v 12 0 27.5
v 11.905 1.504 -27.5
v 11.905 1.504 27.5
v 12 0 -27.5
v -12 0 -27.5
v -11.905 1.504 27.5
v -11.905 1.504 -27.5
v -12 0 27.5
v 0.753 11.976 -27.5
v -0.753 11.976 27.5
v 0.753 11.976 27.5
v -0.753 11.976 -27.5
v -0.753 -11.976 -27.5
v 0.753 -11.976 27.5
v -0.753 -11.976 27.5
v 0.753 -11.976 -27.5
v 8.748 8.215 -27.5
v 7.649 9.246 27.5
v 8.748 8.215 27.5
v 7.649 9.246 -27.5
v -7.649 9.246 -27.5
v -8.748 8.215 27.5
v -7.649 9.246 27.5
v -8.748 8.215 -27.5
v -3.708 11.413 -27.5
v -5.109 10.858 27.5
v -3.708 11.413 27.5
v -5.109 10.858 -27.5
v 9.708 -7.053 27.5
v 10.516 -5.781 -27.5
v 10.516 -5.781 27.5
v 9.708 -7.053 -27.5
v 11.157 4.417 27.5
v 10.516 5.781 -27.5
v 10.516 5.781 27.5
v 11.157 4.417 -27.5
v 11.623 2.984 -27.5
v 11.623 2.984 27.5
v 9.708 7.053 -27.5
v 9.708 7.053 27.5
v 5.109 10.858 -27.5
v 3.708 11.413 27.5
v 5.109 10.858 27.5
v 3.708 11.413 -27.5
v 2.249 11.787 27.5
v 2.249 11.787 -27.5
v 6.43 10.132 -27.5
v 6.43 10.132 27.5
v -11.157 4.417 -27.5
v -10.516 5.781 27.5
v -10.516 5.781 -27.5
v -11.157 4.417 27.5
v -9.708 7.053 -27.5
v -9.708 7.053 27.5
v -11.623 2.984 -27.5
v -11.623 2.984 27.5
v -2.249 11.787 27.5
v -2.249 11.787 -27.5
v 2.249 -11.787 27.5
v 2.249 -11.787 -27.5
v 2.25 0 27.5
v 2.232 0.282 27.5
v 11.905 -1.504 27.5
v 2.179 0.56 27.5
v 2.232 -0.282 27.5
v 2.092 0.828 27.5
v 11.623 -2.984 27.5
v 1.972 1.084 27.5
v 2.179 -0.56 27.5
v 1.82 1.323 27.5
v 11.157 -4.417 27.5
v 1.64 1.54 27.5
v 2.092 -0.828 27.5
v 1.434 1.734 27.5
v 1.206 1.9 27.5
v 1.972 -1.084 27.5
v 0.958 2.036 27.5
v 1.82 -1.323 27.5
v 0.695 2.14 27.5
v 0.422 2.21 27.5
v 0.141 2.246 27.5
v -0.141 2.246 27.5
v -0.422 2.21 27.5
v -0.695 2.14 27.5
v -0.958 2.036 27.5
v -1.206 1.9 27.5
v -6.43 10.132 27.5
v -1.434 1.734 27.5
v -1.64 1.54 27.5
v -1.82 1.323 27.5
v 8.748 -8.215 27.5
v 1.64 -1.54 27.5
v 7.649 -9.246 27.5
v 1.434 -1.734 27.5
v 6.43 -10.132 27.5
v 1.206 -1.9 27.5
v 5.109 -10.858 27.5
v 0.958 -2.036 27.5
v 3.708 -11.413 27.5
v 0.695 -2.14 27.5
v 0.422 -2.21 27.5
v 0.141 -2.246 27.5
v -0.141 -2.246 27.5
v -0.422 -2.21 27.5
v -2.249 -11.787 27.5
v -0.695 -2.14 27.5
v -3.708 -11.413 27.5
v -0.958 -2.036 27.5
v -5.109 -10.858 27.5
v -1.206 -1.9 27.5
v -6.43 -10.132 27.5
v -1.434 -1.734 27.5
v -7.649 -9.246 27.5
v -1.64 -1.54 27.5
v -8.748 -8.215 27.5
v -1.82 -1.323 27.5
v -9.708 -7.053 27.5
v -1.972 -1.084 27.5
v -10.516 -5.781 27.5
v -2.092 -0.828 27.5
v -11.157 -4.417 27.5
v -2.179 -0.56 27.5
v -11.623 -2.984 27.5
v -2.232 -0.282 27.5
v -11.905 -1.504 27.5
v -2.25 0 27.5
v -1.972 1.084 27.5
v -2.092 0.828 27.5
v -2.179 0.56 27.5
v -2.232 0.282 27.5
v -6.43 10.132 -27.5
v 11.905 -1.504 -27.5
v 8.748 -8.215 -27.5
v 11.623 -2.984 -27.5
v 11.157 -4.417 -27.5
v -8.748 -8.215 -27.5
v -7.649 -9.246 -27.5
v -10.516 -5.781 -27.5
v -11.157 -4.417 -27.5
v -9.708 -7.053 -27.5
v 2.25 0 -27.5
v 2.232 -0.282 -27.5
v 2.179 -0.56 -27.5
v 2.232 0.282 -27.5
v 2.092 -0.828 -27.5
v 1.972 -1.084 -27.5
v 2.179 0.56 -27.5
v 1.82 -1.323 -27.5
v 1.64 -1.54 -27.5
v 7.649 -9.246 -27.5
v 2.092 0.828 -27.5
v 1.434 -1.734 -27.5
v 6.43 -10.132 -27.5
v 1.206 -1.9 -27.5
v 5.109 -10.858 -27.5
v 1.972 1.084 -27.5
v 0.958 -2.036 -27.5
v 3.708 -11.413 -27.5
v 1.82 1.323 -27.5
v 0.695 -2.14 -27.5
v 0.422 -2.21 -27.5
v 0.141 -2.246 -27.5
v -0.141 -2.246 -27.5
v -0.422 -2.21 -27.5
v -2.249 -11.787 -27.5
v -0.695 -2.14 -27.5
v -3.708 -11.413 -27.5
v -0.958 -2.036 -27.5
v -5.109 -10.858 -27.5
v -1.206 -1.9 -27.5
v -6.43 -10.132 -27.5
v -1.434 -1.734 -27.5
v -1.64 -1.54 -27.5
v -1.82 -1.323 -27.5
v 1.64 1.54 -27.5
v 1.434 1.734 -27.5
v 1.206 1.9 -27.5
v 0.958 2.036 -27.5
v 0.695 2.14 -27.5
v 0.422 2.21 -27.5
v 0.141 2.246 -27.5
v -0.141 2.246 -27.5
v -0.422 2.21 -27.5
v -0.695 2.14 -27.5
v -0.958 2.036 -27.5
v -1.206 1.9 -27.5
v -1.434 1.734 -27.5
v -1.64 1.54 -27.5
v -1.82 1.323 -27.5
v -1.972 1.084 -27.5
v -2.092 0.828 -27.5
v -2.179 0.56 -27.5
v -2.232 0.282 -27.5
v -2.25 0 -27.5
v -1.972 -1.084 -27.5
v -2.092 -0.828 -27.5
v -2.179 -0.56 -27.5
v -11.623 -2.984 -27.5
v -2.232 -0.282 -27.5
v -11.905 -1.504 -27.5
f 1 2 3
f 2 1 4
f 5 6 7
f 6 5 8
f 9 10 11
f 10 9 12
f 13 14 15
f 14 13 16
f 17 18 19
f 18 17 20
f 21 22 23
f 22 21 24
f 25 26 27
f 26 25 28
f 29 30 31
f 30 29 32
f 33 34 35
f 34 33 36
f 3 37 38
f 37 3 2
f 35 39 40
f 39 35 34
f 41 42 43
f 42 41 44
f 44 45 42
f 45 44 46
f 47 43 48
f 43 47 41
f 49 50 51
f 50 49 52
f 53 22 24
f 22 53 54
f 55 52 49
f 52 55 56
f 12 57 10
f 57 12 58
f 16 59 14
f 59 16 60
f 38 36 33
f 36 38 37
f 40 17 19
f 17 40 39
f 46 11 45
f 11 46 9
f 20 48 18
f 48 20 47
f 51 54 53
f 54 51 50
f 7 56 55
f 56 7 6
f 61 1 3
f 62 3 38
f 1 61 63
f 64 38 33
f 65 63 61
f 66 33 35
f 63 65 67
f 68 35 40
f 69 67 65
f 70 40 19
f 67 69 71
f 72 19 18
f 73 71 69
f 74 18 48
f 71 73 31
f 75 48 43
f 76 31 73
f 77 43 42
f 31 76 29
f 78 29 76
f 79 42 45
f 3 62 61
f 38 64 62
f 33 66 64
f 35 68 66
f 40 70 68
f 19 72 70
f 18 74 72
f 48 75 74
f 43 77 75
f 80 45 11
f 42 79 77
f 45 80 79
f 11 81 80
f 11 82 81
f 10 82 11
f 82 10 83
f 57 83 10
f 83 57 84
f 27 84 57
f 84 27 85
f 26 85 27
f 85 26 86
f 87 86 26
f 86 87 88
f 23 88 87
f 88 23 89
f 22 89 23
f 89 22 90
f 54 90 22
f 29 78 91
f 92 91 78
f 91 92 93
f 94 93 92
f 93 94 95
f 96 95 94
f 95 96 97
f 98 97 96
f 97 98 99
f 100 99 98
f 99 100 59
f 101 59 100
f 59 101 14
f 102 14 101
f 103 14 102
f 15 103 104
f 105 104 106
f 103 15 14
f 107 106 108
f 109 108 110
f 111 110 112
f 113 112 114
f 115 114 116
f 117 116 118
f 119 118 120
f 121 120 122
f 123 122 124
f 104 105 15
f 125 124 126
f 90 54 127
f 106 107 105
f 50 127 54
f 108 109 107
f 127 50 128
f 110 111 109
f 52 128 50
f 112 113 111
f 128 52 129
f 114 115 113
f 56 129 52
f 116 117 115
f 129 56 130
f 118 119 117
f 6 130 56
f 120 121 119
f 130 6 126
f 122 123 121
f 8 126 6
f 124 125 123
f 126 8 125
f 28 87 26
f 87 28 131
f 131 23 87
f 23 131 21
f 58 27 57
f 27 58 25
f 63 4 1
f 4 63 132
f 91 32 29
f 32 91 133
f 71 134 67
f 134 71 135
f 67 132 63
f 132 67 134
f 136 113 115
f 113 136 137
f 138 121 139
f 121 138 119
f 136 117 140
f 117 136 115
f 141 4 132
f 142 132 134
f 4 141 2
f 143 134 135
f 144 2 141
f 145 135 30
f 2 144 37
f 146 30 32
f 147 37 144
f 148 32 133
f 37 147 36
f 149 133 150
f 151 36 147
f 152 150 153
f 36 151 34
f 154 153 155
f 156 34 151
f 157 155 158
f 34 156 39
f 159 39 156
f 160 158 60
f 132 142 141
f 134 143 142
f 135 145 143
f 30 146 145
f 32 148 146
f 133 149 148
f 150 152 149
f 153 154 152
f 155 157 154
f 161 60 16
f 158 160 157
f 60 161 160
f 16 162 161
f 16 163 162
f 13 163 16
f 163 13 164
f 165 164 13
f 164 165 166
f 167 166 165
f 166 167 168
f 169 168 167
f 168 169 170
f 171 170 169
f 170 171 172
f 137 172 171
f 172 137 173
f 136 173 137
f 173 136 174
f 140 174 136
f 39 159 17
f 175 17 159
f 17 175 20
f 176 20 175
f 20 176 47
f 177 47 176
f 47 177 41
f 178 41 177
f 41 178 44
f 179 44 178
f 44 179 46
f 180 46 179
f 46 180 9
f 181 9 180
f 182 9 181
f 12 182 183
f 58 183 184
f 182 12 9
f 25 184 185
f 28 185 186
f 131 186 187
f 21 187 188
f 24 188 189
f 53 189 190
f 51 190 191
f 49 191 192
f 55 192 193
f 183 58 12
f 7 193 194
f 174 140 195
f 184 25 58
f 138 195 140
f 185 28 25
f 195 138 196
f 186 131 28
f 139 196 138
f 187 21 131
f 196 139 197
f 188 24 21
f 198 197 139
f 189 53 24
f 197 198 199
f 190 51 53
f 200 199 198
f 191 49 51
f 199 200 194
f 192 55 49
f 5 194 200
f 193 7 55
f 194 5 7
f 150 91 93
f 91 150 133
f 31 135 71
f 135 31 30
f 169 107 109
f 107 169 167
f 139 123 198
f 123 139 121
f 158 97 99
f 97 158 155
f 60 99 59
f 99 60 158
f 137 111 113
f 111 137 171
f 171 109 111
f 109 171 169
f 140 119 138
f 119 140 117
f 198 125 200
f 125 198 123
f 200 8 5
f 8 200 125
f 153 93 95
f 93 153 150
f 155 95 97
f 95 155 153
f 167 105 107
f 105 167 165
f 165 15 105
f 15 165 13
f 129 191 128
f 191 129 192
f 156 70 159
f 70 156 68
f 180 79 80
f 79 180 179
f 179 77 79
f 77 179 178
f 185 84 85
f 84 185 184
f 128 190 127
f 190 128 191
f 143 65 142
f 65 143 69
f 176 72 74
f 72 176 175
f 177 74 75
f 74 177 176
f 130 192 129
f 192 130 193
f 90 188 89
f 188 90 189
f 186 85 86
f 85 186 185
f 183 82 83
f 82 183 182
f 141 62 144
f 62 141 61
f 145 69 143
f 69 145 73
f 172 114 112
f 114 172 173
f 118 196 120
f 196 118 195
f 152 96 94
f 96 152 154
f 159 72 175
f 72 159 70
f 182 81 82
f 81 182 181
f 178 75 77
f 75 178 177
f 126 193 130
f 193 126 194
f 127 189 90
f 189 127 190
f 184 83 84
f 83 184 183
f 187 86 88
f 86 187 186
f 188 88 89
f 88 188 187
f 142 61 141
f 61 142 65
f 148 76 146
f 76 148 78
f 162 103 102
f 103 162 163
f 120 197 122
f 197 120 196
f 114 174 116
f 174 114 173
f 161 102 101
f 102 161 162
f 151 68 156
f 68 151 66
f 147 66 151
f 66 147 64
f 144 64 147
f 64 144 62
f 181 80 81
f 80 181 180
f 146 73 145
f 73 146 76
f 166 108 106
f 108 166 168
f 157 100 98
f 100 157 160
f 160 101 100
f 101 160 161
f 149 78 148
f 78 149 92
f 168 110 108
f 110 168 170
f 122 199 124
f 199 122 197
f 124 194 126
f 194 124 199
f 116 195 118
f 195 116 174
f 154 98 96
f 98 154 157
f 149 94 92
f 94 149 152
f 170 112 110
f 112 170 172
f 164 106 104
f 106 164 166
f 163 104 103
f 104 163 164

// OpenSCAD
$fn = 50;


difference() {
	union() {
		translate(v = [0, 0, -27.5000000000]) {
			cylinder(h = 55, r = 12.0000000000);
		}
	}
	union() {
		translate(v = [0, 0, -100.0000000000]) {
			cylinder(h = 200, r = 2.2500000000);
		}
	}
}
